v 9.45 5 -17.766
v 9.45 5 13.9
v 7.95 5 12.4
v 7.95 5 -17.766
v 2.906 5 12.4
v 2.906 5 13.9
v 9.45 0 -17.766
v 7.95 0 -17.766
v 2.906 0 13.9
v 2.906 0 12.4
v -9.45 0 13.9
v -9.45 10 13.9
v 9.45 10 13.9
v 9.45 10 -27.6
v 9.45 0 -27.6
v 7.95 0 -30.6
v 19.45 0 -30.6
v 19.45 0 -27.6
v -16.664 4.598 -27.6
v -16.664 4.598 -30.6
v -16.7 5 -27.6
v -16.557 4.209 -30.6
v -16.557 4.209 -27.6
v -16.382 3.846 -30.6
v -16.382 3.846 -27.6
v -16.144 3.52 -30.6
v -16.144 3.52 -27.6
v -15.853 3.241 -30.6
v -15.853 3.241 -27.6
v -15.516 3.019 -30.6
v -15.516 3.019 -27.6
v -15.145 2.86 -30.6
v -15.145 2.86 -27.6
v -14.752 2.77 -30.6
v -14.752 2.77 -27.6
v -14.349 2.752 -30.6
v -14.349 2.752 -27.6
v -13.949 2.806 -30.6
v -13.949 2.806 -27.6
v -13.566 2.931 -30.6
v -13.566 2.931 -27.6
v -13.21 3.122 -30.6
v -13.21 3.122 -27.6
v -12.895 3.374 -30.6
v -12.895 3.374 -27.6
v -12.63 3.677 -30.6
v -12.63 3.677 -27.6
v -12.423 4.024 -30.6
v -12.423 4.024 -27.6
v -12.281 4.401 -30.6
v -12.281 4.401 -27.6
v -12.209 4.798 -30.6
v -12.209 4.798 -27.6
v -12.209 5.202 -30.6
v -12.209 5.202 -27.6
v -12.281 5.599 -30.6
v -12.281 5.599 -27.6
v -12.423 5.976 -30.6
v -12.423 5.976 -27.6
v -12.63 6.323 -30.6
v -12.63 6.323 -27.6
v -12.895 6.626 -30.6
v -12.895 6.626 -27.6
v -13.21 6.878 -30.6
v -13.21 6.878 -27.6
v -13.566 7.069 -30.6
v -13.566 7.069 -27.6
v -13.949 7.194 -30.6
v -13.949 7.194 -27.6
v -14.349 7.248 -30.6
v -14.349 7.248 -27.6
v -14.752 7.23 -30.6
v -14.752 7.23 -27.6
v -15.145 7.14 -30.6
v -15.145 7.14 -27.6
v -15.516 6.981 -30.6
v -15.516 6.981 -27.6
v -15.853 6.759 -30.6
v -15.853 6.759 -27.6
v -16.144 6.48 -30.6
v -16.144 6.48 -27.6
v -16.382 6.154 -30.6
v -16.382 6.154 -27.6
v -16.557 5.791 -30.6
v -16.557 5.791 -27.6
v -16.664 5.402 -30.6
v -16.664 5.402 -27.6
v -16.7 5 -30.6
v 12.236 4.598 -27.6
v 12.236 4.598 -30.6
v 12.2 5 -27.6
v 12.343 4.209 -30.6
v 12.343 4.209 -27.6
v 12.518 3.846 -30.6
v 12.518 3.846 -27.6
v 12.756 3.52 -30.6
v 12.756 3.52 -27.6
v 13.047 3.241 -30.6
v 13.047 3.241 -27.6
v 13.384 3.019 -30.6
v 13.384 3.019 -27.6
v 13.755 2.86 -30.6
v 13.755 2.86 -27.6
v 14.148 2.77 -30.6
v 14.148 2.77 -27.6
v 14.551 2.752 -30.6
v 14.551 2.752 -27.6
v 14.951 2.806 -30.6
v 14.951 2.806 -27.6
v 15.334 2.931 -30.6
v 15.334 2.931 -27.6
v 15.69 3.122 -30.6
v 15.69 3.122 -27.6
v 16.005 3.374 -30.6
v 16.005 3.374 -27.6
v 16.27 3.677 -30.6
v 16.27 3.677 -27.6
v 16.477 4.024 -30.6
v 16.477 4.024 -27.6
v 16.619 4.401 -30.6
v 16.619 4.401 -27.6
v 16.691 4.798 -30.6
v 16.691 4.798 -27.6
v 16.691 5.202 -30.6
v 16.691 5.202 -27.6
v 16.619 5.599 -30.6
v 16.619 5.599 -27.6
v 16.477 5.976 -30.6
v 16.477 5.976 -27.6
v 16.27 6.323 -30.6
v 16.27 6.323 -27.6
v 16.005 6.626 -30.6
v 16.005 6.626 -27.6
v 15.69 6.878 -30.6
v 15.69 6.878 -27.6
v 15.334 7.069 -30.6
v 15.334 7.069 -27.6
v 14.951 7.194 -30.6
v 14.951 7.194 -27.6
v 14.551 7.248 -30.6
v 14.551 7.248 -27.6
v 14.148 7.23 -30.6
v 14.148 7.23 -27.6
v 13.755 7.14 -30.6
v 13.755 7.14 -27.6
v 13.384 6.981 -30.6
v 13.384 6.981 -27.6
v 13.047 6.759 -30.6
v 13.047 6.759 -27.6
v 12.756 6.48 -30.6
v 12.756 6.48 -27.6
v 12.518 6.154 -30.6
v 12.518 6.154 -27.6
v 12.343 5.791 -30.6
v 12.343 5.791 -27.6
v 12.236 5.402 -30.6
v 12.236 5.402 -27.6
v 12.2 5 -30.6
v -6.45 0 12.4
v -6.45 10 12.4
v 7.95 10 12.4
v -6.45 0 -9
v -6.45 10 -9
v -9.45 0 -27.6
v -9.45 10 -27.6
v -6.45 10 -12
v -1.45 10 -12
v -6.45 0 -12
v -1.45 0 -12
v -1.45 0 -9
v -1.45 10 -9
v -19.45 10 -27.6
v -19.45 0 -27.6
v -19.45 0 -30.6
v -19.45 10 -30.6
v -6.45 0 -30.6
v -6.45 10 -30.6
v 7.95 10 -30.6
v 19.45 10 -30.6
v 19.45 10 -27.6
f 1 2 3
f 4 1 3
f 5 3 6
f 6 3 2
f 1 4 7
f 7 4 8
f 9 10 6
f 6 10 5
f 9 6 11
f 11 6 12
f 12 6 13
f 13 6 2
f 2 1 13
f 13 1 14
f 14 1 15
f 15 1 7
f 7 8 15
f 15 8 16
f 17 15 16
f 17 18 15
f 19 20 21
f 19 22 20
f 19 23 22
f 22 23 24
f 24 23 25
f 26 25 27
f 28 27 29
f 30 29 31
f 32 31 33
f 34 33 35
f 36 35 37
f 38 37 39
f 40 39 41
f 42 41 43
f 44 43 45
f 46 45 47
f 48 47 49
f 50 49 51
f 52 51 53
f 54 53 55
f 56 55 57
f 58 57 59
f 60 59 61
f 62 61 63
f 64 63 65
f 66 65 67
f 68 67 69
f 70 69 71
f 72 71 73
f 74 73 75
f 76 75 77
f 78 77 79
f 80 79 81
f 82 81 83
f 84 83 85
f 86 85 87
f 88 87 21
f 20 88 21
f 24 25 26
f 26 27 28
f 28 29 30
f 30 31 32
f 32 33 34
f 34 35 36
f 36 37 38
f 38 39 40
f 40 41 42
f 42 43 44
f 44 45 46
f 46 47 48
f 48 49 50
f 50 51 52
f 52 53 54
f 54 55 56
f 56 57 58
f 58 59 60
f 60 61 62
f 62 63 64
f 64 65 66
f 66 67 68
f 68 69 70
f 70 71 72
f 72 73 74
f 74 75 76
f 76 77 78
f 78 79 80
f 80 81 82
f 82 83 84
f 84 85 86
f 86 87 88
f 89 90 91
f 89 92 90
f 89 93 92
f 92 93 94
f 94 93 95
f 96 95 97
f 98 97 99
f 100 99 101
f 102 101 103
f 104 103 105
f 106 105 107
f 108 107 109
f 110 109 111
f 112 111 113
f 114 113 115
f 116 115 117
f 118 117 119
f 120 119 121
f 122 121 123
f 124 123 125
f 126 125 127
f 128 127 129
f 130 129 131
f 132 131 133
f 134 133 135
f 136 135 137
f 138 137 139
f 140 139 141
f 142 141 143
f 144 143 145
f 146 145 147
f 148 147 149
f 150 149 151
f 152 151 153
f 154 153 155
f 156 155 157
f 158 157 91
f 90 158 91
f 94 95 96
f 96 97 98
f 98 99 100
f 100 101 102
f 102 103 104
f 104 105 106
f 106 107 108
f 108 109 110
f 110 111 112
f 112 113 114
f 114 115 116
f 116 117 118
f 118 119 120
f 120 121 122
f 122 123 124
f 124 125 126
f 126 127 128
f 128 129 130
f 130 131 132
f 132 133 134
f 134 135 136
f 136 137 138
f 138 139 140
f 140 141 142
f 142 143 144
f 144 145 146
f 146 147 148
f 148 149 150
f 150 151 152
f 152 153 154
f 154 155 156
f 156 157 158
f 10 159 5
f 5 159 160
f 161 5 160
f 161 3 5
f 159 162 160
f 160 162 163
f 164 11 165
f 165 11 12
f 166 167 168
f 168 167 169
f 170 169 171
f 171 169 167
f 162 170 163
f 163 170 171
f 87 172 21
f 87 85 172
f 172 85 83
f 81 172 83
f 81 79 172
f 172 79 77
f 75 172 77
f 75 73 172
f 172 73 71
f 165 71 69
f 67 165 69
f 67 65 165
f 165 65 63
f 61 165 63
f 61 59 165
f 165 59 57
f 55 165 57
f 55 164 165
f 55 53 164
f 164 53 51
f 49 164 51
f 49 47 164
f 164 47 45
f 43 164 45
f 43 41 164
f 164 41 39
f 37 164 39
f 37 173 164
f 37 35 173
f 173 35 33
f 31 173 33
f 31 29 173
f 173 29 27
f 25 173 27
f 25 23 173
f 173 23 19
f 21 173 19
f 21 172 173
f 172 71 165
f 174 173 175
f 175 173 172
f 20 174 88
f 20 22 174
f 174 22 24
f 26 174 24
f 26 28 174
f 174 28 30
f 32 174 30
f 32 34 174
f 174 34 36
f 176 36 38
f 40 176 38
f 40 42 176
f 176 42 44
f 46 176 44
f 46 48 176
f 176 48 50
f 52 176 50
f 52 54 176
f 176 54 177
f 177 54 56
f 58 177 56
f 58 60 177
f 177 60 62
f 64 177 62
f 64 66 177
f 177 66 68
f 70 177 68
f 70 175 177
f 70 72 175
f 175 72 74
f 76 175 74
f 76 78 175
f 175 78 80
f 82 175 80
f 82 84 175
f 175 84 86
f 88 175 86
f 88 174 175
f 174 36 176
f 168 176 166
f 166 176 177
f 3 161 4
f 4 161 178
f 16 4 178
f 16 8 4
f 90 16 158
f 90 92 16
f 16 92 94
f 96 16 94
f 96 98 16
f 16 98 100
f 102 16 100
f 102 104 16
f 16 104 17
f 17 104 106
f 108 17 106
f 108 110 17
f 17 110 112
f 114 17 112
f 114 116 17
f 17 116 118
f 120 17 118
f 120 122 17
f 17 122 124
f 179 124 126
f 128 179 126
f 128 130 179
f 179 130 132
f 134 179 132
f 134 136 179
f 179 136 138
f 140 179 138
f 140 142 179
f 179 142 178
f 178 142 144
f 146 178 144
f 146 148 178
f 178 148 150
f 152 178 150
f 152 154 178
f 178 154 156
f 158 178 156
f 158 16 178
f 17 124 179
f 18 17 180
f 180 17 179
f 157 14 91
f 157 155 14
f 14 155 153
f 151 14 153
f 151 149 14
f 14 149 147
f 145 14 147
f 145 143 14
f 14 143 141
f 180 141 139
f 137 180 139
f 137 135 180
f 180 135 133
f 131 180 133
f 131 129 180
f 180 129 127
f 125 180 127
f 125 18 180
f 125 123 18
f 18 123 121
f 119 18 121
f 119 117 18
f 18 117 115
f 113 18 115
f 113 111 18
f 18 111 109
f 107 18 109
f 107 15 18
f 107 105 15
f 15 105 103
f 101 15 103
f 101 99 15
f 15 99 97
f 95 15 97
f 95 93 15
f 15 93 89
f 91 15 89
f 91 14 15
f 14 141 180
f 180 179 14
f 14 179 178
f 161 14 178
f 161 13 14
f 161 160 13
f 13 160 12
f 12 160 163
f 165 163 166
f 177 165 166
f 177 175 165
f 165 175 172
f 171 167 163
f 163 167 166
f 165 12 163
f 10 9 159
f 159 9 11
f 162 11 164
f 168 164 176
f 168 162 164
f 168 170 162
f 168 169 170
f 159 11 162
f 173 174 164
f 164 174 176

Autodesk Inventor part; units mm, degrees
ref_plane "YZ Plane" through (0, 0, 0) normal (1, 0, 0) x (0, 1, 0)
ref_plane "XZ Plane" through (0, 0, 0) normal (0, 1, 0) x (-1, 0, 0)
ref_plane "XY Plane" through (0, 0, 0) normal (0, 0, 1) x (1, 0, 0)
sketch "Sketch1" plane through (0, 0, 0) normal (0, 1, 0) x (-1, 0, 0)
  line L0 (-9.45, 13.9) -> (9.45, 13.9)
  line L1 (9.45, 13.9) -> (9.45, 12.4)
  line L2 (9.45, 12.4) -> (-9.45, 12.4)
  line L3 (-9.45, 12.4) -> (-9.45, 13.9)
  line L4 (9.45, 12.4) -> (6.45, 12.4)
  line L5 (6.45, 12.4) -> (6.45, -9)
  line L6 (6.45, -9) -> (9.45, -9)
  line L7 (9.45, -9) -> (9.45, 12.4)
  line L8 (-9.45, 12.4) -> (-7.95, 12.4)
  line L9 (-7.95, 12.4) -> (-7.95, -9)
  line L10 (-7.95, -9) -> (-9.45, -9)
  line L11 (-9.45, -9) -> (-9.45, 12.4)
  line L12 (-7.95, -7.6) -> (-9.45, -7.6)
  line L13 (-9.45, -7.6) -> (-9.45, -10.6)
  line L14 (-9.45, -10.6) -> (-7.95, -10.6)
  line L15 (-7.95, -10.6) -> (-7.95, -7.6)
  line L16 (1.45, -9) -> (9.45, -9)
  line L17 (9.45, -9) -> (9.45, -12)
  line L18 (9.45, -12) -> (1.45, -12)
  line L19 (1.45, -12) -> (1.45, -9)
  line L20 (-9.45, -10.6) -> (-7.95, -10.6)
  line L21 (-7.95, -10.6) -> (-7.95, -27.6)
  line L22 (-7.95, -27.6) -> (-9.45, -27.6)
  line L23 (-9.45, -27.6) -> (-9.45, -10.6)
  line L24 (9.45, -12) -> (6.45, -12)
  line L25 (6.45, -12) -> (6.45, -27.6)
  line L26 (6.45, -27.6) -> (9.45, -27.6)
  line L27 (9.45, -27.6) -> (9.45, -12)
  line L28 (-7.95, -27.6) -> (-19.45, -27.6)
  line L29 (-19.45, -27.6) -> (-19.45, -30.6)
  line L30 (-19.45, -30.6) -> (-7.95, -30.6)
  line L31 (-7.95, -30.6) -> (-7.95, -27.6)
  line L32 (6.45, -27.6) -> (19.45, -27.6)
  line L33 (19.45, -27.6) -> (19.45, -30.6)
  line L34 (19.45, -30.6) -> (6.45, -30.6)
  line L35 (6.45, -30.6) -> (6.45, -27.6)
  line L36 (-14.45, -26) -> (-14.45, -42) construction
  line L37 (14.45, -27) -> (14.45, -42) construction
  point P0 (0, 0)
  point P1 (0, 12.4)
  dimension "d0" = 1.5
  dimension "d1" = 3
  dimension "d2" = 1.5
  dimension "d3" = 3
  dimension "d4" = 3
  dimension "d5" = 0
  dimension "d6" = 5
  dimension "d7" = 14.4
  dimension "d8" = 21.4
  dimension "d9" = 20
  dimension "d12" = 0
  dimension "d13" = 0
  dimension "d20" = 17
  dimension "d21" = 10
  dimension "d22" = 1.5
  dimension "d23" = 3
  dimension "d24" = 10
  dimension "d25" = 3
  dimension "d26" = 3
  dimension "d33" = 5
  dimension "d34" = 5
  dimension "d35" = 28.9
extrude "Extrusion1" add sketch "Sketch1" along normal blind 10
sketch "Sketch6" plane through (19.45, 0, -30.6) normal (0, 0, -1) x (-1, 0, 0)
  line L0 (0, 10) -> (11.5, 10) projected
  line L1 (0, 0) -> (10, 0)
  line L2 (10, 0) -> (10, 10)
  line L3 (10, 10) -> (0, 10)
  line L4 (0, 10) -> (0, 0)
  circle A0 centre (5, 5) radius 2.25
  point P0 (19.45, 0)
  dimension "d27" = 4.5
sketch "Sketch7" plane through (-6.45, 0, -30.6) normal (0, 0, -1) x (-1, 0, 0)
  line L0 (0, 10) -> (13, 10) projected
  line L1 (13, 0) -> (3, 0)
  line L2 (3, 0) -> (3, 10)
  line L3 (3, 10) -> (13, 10)
  line L4 (13, 10) -> (13, 0)
  circle A0 centre (8, 5) radius 2.25
  point P0 (-6.45, 0)
  dimension "d28" = 4.5
extrude "Extrusion4" cut sketch "Sketch6" against normal blind 4 contours A0
extrude "Extrusion5" cut sketch "Sketch7" against normal blind 4 contours A0
sketch "Sketch8" plane through (0, 0, 0) normal (0, -1, 0) x (1, 0, 0)
  line L0 (2.9056, 16.2719) -> (14.45, 16.2719)
  line L1 (14.45, 16.2719) -> (14.45, -17.7657)
  line L2 (14.45, -17.7657) -> (2.9056, -17.7657)
  line L3 (2.9056, -17.7657) -> (2.9056, 16.2719)
  point P0 (0, 0)
extrude "Extrusion6" cut sketch "Sketch8" against normal blind 5
equation "\"sp\" = 0.4"
properties part number "MotorMount"
